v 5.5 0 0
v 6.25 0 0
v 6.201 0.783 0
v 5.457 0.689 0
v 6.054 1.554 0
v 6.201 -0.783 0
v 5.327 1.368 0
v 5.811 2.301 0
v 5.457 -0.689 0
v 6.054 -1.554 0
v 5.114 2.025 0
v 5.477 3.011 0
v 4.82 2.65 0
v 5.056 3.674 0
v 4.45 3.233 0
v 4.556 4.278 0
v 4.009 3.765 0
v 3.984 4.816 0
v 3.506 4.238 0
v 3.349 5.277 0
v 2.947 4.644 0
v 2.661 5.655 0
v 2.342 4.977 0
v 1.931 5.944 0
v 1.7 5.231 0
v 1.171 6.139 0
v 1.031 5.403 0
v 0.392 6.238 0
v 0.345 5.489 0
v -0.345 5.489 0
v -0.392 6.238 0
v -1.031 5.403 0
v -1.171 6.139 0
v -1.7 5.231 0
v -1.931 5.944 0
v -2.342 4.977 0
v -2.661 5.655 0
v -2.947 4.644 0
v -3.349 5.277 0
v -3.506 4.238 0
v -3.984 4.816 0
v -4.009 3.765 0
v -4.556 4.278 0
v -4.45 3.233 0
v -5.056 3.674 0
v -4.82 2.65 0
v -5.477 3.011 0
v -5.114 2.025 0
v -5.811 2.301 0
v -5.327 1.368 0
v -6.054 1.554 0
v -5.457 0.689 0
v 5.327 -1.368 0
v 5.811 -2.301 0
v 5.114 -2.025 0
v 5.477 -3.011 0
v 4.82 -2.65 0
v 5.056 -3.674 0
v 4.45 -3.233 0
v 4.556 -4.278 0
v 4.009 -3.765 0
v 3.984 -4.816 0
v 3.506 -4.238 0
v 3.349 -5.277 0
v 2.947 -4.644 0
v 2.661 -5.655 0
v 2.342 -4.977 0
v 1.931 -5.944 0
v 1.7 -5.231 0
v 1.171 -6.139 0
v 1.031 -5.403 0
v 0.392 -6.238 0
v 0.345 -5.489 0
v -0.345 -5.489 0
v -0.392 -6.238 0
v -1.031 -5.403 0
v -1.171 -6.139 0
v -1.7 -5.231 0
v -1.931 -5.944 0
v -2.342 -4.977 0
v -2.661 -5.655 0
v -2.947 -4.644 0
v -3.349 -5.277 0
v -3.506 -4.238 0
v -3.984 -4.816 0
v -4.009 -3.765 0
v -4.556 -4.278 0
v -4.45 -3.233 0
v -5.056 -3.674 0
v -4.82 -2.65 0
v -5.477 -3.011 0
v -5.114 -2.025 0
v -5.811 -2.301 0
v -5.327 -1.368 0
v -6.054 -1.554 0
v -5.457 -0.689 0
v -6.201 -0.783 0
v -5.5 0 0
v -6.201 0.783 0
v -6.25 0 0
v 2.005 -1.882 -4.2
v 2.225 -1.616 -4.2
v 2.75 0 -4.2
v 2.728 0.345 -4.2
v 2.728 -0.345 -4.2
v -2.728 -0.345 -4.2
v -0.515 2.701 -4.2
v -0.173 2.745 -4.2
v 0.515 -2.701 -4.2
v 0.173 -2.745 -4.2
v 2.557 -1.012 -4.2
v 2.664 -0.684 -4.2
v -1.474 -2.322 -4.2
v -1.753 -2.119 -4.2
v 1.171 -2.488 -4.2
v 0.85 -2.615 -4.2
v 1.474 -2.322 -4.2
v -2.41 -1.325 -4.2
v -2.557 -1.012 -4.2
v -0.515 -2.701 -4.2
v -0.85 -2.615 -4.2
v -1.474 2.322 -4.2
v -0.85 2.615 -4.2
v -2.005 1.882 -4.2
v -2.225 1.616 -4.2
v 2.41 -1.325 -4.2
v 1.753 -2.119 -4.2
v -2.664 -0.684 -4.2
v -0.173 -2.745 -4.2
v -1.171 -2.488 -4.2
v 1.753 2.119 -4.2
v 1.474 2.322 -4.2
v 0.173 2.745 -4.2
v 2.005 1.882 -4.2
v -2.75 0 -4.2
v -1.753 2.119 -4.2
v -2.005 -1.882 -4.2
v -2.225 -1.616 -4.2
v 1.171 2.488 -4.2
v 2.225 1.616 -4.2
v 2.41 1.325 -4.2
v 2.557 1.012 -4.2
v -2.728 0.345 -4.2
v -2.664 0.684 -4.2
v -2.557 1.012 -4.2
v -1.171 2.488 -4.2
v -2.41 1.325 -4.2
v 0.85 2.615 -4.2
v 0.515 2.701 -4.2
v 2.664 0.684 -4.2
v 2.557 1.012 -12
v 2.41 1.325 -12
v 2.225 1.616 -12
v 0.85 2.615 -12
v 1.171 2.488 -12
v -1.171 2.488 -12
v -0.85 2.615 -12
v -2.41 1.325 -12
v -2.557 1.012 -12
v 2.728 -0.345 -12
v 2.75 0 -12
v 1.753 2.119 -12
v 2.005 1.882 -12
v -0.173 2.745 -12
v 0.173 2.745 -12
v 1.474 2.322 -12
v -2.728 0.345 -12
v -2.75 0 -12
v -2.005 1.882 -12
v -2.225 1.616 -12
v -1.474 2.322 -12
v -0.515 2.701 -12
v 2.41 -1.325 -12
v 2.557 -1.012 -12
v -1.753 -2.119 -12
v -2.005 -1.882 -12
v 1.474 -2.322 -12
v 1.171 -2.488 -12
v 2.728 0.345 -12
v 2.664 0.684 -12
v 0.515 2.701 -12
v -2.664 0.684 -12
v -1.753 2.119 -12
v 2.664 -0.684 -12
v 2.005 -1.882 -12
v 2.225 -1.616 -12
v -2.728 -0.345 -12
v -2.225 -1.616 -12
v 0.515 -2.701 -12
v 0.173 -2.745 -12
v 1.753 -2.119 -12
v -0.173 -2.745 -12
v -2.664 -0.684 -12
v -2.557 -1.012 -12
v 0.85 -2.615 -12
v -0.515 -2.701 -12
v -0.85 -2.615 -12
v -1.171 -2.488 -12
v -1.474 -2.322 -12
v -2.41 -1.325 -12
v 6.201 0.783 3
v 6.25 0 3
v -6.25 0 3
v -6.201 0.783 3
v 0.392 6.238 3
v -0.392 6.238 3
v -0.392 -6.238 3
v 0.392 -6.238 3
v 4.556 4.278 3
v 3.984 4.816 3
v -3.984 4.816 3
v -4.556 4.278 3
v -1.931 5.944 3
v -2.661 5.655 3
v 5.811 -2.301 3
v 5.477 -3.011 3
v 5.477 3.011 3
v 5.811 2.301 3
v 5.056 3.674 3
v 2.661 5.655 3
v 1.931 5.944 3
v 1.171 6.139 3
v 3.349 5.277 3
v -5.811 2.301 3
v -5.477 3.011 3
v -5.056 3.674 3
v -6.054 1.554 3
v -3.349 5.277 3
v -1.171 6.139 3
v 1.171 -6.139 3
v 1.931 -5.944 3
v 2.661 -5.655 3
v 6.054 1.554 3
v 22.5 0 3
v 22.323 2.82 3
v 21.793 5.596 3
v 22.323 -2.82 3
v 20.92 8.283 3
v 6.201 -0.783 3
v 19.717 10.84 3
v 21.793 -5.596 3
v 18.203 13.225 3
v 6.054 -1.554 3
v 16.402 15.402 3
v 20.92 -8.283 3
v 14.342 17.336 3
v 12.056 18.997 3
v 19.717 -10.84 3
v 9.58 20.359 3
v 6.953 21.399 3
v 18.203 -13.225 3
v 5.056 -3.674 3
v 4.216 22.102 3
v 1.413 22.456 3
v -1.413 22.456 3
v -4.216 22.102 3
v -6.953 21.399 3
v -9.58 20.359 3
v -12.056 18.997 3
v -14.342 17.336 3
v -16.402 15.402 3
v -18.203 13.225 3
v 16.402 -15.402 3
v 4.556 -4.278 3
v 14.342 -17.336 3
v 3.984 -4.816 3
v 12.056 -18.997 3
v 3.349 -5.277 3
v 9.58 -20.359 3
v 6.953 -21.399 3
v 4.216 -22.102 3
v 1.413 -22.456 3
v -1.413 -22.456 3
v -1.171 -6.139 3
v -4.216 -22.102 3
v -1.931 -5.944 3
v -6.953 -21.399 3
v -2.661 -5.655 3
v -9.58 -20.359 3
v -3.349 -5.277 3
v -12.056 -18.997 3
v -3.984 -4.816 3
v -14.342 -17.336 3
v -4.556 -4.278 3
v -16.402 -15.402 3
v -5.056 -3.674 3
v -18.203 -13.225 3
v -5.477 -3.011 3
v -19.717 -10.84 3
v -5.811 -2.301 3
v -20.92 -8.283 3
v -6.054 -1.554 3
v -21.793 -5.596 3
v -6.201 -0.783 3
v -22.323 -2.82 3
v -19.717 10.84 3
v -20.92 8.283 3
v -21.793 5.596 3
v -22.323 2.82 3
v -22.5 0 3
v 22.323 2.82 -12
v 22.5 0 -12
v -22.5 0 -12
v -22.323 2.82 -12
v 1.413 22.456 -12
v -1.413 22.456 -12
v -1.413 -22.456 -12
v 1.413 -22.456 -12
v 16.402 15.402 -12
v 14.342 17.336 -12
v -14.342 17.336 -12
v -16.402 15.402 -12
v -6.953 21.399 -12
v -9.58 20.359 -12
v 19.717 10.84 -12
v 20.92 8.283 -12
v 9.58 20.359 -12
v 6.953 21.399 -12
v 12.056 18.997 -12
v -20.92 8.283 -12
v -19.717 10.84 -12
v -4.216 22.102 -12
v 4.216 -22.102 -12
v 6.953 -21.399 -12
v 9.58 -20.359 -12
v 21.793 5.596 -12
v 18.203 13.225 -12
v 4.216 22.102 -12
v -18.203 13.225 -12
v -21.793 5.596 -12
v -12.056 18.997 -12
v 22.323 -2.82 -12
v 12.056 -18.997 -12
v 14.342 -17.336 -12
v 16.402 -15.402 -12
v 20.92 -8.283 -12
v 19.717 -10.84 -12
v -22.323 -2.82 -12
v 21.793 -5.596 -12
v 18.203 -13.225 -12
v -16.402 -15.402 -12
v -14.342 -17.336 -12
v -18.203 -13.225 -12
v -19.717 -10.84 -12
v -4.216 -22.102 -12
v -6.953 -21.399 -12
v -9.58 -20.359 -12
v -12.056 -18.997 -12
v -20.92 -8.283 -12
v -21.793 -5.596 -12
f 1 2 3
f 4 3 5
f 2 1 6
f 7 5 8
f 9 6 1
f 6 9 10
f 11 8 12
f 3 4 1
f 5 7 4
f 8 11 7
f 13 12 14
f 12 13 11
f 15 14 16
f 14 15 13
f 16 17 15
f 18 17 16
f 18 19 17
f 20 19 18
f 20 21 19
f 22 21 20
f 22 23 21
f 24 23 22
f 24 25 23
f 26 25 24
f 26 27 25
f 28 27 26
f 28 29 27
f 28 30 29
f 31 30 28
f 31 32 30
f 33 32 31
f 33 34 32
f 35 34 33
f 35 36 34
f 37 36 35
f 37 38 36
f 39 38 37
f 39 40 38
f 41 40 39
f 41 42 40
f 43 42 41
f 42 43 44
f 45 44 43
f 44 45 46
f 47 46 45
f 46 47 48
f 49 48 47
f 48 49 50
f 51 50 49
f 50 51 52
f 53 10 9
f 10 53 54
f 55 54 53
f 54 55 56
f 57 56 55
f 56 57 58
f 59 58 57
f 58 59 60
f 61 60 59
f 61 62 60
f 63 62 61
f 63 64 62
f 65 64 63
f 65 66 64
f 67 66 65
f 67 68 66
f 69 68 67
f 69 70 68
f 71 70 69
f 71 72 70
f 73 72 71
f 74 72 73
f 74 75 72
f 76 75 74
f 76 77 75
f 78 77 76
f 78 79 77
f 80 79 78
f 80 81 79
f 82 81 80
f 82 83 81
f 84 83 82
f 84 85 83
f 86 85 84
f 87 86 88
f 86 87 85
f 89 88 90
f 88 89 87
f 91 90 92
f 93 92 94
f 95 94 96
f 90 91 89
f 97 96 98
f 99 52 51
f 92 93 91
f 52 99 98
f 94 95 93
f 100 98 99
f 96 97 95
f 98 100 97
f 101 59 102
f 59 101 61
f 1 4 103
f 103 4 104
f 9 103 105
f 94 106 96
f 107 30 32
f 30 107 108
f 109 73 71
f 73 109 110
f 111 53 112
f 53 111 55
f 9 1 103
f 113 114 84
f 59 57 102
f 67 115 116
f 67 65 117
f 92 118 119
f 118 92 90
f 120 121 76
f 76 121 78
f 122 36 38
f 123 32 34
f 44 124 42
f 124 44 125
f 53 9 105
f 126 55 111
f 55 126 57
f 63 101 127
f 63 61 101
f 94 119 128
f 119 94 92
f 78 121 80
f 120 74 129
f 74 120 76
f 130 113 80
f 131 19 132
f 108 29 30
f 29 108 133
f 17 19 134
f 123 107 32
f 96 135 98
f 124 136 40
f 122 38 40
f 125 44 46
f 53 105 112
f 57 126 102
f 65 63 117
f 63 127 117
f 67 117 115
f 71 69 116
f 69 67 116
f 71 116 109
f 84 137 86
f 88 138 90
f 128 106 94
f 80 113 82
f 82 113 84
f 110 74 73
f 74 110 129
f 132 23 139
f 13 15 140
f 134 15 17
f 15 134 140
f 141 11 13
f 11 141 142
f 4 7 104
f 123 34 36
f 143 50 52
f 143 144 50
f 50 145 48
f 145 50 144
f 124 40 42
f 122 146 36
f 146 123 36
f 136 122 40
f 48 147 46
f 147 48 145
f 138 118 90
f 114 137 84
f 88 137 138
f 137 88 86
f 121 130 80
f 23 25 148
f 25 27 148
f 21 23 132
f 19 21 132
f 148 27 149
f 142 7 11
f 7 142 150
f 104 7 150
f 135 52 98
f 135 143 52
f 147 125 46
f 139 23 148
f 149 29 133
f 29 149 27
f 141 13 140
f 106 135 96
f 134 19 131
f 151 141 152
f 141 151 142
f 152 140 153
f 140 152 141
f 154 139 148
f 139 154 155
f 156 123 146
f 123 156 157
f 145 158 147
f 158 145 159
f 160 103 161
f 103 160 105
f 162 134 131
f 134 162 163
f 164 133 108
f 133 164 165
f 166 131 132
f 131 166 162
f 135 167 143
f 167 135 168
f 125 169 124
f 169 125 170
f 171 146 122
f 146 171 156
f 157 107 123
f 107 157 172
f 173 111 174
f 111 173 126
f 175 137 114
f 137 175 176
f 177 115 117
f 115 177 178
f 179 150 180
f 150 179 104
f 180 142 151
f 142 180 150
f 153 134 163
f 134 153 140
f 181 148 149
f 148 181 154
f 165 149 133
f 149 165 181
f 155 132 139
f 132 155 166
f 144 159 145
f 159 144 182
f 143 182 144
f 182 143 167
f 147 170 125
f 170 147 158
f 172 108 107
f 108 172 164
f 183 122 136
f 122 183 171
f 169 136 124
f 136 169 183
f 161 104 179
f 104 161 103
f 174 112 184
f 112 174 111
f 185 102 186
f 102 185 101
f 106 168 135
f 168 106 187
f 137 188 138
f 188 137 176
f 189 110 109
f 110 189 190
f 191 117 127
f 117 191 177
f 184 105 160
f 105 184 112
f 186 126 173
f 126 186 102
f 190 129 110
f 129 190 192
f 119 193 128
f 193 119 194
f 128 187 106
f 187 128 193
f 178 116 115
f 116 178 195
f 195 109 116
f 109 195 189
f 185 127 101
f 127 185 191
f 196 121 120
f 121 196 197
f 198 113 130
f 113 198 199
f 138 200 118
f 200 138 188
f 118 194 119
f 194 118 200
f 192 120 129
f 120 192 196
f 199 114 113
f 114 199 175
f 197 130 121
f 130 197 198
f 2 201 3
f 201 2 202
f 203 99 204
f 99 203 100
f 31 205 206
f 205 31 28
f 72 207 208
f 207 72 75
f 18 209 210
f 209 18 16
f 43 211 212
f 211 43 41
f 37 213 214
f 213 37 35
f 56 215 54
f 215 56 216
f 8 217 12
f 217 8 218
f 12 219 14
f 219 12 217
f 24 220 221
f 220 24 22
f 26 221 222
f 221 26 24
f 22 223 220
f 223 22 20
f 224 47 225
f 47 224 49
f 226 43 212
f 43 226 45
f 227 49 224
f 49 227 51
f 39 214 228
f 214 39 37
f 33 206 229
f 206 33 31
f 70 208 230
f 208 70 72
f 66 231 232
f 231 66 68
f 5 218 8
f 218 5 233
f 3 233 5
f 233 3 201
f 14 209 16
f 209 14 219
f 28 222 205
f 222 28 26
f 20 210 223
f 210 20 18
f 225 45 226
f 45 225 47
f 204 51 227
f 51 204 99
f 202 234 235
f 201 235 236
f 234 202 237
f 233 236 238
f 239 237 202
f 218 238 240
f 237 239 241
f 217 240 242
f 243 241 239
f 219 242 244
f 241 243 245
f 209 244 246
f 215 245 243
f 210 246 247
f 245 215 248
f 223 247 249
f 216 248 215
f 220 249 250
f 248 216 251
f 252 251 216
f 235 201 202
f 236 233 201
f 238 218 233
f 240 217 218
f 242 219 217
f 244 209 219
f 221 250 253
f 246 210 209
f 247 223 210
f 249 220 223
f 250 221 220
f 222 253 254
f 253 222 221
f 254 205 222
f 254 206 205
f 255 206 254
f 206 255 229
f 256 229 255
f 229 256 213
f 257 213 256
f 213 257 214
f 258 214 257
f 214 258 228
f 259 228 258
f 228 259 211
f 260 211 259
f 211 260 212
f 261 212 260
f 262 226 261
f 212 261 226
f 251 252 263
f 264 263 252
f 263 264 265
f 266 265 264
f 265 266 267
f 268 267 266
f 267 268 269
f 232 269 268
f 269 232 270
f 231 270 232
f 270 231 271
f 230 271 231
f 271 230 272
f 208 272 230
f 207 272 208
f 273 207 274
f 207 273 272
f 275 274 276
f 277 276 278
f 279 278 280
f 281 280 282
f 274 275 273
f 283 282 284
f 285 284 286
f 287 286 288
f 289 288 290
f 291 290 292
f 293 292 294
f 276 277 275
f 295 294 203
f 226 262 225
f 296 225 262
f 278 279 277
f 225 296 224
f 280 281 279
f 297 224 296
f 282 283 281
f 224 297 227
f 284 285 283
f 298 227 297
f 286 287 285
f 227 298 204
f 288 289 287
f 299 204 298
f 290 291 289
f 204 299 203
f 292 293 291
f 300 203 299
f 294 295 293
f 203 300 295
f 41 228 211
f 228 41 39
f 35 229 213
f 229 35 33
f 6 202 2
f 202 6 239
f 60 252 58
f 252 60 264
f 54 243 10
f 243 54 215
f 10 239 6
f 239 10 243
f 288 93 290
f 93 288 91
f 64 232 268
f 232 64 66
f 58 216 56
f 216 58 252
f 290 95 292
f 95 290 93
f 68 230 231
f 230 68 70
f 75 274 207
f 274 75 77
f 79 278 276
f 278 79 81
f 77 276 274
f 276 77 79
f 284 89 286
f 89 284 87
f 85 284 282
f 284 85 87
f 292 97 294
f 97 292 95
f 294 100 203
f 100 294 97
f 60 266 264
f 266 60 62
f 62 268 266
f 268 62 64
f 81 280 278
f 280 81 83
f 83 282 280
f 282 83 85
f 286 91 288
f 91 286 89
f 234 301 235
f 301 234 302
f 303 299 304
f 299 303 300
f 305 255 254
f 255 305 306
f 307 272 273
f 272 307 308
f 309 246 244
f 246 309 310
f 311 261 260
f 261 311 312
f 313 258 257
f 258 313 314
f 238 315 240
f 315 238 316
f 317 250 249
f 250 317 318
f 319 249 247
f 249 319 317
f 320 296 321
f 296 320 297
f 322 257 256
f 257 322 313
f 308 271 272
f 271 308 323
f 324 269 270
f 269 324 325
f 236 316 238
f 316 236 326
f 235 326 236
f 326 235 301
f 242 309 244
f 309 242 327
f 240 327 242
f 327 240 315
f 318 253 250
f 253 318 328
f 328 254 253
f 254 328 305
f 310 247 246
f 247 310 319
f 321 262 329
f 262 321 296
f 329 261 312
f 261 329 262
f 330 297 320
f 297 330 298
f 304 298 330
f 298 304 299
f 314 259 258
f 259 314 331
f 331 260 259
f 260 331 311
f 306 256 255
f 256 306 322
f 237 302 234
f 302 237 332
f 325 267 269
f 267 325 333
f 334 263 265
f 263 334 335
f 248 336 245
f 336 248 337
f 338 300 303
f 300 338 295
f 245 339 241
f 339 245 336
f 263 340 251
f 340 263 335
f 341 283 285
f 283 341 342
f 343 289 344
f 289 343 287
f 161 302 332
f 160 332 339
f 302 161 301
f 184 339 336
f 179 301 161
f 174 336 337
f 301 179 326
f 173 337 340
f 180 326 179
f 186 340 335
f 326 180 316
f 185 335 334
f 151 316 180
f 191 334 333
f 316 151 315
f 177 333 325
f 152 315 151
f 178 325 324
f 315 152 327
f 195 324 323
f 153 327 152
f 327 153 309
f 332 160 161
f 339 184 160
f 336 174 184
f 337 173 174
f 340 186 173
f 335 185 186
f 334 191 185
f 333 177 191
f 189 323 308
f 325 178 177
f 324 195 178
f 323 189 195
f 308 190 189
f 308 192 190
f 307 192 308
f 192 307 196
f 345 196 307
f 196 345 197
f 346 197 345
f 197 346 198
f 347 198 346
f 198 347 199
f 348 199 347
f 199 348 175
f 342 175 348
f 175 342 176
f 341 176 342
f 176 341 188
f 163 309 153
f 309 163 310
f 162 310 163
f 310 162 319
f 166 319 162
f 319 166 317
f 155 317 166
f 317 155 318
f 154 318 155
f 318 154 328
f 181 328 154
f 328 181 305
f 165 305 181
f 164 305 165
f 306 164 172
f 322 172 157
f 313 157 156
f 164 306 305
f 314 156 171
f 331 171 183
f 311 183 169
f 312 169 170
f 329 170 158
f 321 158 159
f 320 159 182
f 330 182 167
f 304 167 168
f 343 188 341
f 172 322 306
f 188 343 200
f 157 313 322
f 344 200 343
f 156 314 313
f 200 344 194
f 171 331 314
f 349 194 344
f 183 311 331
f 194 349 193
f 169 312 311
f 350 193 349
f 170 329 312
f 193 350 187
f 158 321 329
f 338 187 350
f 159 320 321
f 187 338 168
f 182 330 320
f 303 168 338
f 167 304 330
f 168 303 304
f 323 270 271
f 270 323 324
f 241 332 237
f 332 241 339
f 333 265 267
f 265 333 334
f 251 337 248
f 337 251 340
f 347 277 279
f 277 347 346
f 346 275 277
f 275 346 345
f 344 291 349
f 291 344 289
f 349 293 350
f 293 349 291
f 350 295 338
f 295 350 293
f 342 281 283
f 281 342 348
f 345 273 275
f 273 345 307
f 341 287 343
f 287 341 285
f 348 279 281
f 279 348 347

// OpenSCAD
$fn = 50;


difference() {
	union() {
		translate(v = [0, 0, -12.0000000000]) {
			cylinder(h = 15, r = 22.5000000000);
		}
	}
	union() {
		translate(v = [0, 0, 0]) {
			rotate(a = [0, 0, 0]) {
				difference() {
					union() {
						translate(v = [0, 0, -15.0000000000]) {
							cylinder(h = 15, r = 2.2500000000);
						}
						translate(v = [0, 0, -4.2000000000]) {
							cylinder(h = 4.2000000000, r1 = 2.7500000000, r2 = 5.5000000000);
						}
						translate(v = [0, 0, -15.0000000000]) {
							cylinder(h = 15, r = 2.7500000000);
						}
						translate(v = [0, 0, -15.0000000000]) {
							cylinder(h = 15, r = 2.2500000000);
						}
					}
					union();
				}
			}
		}
		#cylinder(h = 3, r = 6.2500000000);
	}
}
